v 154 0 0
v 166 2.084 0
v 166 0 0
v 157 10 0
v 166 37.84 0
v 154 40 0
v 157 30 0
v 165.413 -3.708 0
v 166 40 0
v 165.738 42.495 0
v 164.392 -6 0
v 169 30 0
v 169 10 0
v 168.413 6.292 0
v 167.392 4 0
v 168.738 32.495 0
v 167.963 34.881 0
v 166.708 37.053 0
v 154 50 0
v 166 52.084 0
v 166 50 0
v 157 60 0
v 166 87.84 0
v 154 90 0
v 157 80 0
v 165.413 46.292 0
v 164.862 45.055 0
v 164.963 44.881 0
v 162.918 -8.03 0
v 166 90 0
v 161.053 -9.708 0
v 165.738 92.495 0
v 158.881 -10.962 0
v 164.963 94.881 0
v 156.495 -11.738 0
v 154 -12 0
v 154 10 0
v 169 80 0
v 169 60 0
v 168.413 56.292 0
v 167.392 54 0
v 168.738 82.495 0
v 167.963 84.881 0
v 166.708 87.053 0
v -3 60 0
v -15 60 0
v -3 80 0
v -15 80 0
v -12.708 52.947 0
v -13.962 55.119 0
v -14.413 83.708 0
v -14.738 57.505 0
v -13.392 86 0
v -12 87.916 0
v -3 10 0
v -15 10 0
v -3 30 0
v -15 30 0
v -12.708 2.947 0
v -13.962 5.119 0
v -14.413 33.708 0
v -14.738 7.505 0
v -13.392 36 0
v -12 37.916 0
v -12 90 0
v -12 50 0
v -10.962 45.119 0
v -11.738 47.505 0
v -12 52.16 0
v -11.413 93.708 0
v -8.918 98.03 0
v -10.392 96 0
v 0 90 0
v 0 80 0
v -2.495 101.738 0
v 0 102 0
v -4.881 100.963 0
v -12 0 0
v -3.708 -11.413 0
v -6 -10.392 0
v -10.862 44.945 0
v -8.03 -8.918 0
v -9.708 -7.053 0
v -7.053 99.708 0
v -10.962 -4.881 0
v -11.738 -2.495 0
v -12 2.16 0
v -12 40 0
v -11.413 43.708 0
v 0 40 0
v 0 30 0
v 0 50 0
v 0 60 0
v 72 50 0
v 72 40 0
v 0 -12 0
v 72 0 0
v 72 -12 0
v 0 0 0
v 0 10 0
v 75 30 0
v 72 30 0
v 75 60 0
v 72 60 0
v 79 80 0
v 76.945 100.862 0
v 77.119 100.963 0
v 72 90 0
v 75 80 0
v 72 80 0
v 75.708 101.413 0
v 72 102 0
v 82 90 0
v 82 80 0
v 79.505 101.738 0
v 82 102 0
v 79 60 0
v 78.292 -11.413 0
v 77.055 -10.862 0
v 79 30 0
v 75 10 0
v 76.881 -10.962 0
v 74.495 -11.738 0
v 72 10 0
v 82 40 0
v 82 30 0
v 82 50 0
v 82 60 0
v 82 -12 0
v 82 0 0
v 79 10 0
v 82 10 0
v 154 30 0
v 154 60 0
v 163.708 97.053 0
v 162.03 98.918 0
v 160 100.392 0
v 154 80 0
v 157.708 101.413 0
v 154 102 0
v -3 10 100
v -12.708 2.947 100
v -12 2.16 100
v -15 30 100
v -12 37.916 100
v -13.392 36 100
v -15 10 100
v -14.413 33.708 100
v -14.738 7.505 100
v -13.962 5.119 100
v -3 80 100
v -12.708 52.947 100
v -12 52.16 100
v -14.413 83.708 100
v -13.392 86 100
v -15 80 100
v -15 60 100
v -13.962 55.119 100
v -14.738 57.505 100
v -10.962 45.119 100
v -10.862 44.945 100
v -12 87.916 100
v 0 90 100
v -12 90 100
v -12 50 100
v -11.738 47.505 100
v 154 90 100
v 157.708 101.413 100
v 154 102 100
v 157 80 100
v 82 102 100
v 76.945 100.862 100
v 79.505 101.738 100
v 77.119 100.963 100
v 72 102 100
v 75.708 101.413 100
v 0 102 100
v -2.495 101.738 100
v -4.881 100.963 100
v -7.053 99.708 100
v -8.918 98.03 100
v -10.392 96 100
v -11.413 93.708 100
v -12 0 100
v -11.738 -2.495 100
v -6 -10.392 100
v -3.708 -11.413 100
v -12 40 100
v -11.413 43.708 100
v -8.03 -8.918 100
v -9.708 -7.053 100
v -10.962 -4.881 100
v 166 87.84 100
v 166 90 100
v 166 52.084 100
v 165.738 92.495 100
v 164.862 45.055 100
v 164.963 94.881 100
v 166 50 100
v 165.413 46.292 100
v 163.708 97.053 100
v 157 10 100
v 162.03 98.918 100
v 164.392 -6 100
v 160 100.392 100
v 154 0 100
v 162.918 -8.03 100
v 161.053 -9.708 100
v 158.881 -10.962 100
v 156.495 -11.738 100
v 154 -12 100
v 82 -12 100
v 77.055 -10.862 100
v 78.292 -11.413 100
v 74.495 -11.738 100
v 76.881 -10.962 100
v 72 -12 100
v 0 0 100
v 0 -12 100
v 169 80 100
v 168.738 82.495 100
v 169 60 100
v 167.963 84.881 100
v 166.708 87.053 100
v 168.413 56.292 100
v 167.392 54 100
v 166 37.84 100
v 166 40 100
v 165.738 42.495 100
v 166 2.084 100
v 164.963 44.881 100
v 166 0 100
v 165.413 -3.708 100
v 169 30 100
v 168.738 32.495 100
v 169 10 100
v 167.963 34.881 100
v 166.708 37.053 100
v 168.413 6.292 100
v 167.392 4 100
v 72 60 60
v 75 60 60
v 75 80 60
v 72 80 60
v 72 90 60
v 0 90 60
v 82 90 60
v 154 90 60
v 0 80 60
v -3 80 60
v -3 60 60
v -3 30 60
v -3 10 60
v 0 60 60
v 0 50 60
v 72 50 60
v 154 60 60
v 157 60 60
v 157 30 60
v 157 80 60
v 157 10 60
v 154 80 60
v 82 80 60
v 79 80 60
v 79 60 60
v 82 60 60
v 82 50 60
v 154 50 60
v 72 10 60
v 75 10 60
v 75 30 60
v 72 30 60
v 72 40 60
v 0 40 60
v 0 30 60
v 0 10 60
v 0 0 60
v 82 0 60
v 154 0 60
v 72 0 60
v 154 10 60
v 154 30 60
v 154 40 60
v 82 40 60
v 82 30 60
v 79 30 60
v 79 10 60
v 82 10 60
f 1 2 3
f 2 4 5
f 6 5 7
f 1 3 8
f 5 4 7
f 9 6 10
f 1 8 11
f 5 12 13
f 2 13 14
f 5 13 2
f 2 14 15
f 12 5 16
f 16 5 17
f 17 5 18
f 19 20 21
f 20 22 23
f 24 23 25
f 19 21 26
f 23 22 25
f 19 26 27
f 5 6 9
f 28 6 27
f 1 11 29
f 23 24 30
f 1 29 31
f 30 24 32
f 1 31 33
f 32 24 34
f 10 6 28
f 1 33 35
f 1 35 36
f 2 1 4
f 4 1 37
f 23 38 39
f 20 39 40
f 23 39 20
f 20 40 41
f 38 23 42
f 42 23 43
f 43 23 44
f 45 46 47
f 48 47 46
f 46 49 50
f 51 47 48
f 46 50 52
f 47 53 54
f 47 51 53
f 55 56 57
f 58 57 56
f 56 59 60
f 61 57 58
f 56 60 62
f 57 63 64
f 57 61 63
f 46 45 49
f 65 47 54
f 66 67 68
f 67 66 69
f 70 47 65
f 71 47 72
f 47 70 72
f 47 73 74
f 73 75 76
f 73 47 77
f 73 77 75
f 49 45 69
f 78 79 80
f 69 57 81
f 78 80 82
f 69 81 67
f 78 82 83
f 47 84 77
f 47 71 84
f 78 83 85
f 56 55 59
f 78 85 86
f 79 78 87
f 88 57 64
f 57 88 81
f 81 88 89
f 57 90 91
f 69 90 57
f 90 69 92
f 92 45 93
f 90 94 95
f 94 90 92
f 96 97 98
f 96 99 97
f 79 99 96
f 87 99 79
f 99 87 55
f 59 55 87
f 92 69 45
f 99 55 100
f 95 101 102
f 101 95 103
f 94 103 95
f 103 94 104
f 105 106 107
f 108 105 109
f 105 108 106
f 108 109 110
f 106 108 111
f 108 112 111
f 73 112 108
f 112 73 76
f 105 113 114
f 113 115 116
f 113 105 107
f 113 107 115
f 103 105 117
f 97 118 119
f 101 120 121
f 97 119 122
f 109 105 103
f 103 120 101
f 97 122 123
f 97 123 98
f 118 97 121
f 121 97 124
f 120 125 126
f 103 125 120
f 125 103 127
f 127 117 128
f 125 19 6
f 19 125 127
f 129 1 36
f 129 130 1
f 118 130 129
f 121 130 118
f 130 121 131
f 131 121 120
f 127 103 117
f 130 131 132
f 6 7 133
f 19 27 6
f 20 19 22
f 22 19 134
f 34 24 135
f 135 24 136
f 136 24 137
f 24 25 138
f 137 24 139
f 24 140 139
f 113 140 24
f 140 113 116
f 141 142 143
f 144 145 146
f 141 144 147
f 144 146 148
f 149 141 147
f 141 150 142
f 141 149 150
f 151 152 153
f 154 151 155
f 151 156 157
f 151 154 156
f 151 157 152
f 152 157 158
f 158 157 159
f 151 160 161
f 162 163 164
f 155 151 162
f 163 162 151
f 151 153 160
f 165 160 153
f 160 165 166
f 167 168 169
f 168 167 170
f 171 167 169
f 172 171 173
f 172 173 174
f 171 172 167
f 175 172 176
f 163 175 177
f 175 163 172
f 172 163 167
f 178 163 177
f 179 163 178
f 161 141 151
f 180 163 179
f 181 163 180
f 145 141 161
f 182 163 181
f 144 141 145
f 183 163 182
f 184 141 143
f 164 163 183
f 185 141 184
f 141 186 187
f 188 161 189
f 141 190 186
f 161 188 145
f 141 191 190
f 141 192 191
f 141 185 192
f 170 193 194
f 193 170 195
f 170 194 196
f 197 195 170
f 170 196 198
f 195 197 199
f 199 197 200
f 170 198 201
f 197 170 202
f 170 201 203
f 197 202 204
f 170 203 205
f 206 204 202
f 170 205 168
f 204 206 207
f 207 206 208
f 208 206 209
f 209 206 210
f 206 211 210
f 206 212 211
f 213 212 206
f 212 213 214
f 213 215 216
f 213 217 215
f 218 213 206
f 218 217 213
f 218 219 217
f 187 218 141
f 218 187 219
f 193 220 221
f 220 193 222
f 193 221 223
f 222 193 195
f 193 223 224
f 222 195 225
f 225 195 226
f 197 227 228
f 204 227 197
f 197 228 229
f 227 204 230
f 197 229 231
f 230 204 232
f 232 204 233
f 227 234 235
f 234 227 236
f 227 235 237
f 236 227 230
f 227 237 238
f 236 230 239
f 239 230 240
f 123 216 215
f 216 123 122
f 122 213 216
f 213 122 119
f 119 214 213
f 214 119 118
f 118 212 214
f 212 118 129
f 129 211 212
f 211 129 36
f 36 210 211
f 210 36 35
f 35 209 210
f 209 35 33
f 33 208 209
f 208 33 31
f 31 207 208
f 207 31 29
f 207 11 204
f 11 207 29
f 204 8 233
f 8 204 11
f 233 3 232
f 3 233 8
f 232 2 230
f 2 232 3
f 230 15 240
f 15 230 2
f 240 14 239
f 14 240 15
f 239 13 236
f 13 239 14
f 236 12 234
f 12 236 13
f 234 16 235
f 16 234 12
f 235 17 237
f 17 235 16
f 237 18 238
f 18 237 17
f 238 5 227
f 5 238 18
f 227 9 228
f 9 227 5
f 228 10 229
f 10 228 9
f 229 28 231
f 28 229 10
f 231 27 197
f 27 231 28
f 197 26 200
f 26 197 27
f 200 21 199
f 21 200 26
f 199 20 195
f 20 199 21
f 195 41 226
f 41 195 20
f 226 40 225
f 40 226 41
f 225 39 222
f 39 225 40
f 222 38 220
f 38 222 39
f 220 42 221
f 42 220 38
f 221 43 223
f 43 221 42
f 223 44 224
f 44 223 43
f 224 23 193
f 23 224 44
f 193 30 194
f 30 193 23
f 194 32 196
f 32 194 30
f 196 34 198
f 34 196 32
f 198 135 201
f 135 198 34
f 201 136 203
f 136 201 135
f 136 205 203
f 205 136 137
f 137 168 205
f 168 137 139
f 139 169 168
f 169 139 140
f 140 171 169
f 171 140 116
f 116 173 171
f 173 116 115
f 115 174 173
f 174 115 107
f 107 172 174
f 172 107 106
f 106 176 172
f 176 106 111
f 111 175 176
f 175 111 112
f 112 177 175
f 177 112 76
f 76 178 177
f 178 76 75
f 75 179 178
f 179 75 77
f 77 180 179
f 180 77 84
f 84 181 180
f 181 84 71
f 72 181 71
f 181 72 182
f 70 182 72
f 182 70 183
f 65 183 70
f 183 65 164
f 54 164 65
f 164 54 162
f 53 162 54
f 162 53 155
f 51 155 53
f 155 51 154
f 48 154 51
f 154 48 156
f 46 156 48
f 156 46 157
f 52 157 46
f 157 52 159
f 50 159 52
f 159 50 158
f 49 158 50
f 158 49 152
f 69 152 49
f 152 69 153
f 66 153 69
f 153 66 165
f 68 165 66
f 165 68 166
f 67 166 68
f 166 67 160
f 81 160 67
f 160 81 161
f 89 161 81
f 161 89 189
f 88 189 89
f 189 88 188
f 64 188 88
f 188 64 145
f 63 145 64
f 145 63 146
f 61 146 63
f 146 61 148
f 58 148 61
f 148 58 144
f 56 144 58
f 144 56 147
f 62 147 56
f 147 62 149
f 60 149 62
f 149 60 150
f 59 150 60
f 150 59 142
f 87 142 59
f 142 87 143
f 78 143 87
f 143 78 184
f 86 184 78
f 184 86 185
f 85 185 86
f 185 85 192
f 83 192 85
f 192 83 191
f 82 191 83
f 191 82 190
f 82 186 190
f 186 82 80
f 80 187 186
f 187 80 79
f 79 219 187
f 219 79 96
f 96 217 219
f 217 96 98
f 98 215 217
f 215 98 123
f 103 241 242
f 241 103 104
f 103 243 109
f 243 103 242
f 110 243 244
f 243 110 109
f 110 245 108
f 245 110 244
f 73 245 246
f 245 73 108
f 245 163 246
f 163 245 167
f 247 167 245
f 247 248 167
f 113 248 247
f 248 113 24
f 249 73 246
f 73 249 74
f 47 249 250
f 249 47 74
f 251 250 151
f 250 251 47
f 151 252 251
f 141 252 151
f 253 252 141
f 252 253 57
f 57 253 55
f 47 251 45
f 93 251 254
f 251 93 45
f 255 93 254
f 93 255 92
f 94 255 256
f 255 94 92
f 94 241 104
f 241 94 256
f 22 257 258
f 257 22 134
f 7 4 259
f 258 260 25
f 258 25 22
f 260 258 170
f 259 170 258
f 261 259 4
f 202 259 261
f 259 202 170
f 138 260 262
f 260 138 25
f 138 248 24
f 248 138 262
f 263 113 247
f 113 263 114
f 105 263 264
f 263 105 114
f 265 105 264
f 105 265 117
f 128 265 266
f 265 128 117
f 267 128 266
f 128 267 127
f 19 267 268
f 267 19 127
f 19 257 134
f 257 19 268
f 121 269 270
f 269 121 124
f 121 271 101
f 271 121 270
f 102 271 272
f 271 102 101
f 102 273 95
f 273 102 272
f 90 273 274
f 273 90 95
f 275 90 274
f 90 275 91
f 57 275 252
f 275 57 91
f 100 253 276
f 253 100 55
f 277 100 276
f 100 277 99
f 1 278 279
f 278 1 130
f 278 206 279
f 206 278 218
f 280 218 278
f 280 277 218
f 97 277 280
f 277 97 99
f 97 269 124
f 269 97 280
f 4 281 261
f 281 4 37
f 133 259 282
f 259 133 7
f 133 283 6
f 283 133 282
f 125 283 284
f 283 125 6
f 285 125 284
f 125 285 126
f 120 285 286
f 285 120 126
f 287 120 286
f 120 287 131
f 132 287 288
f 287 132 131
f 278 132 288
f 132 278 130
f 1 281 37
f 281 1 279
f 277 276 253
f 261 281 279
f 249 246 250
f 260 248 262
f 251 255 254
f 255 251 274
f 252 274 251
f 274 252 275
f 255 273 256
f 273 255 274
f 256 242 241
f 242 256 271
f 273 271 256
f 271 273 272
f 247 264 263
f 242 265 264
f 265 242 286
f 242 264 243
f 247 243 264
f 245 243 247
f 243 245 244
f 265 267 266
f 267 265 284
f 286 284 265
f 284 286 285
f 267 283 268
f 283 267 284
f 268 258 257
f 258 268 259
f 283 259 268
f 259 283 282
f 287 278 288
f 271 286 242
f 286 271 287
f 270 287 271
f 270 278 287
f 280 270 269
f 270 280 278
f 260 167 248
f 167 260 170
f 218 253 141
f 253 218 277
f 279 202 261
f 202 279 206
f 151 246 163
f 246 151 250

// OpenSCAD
box_width=72;
box_height=40;
box_depth=40;
clip_height=20;
clip = 3;
clip_width=box_width+clip*2;
radius=12;
gap=-2  ;
depth=100;
screwRadius=4;

module rectangles(){ 
    for(i=[0:1]){
        for(j=[0:1]){
            translate([i*(box_width+gap+radius),j*(box_height+gap+radius)])
            union() { 
                square([box_width,box_height]);
                translate([(box_width-clip_width)/2,(box_height-clip_height)/2]) square([clip_width,clip_height]);
            }
        }
    }
}

module boxes(){
    difference(){
        linear_extrude(depth) offset(r=radius) rectangles();        
        linear_extrude(depth) rectangles();
    };
    //translate([0,0,depth-box_depth]) linear_extrude(box_depth) hull() rectangles();
}
    

difference(){
    boxes();
    translate([0,0,depth-box_depth]) linear_extrude(box_depth) hull() rectangles();
}
